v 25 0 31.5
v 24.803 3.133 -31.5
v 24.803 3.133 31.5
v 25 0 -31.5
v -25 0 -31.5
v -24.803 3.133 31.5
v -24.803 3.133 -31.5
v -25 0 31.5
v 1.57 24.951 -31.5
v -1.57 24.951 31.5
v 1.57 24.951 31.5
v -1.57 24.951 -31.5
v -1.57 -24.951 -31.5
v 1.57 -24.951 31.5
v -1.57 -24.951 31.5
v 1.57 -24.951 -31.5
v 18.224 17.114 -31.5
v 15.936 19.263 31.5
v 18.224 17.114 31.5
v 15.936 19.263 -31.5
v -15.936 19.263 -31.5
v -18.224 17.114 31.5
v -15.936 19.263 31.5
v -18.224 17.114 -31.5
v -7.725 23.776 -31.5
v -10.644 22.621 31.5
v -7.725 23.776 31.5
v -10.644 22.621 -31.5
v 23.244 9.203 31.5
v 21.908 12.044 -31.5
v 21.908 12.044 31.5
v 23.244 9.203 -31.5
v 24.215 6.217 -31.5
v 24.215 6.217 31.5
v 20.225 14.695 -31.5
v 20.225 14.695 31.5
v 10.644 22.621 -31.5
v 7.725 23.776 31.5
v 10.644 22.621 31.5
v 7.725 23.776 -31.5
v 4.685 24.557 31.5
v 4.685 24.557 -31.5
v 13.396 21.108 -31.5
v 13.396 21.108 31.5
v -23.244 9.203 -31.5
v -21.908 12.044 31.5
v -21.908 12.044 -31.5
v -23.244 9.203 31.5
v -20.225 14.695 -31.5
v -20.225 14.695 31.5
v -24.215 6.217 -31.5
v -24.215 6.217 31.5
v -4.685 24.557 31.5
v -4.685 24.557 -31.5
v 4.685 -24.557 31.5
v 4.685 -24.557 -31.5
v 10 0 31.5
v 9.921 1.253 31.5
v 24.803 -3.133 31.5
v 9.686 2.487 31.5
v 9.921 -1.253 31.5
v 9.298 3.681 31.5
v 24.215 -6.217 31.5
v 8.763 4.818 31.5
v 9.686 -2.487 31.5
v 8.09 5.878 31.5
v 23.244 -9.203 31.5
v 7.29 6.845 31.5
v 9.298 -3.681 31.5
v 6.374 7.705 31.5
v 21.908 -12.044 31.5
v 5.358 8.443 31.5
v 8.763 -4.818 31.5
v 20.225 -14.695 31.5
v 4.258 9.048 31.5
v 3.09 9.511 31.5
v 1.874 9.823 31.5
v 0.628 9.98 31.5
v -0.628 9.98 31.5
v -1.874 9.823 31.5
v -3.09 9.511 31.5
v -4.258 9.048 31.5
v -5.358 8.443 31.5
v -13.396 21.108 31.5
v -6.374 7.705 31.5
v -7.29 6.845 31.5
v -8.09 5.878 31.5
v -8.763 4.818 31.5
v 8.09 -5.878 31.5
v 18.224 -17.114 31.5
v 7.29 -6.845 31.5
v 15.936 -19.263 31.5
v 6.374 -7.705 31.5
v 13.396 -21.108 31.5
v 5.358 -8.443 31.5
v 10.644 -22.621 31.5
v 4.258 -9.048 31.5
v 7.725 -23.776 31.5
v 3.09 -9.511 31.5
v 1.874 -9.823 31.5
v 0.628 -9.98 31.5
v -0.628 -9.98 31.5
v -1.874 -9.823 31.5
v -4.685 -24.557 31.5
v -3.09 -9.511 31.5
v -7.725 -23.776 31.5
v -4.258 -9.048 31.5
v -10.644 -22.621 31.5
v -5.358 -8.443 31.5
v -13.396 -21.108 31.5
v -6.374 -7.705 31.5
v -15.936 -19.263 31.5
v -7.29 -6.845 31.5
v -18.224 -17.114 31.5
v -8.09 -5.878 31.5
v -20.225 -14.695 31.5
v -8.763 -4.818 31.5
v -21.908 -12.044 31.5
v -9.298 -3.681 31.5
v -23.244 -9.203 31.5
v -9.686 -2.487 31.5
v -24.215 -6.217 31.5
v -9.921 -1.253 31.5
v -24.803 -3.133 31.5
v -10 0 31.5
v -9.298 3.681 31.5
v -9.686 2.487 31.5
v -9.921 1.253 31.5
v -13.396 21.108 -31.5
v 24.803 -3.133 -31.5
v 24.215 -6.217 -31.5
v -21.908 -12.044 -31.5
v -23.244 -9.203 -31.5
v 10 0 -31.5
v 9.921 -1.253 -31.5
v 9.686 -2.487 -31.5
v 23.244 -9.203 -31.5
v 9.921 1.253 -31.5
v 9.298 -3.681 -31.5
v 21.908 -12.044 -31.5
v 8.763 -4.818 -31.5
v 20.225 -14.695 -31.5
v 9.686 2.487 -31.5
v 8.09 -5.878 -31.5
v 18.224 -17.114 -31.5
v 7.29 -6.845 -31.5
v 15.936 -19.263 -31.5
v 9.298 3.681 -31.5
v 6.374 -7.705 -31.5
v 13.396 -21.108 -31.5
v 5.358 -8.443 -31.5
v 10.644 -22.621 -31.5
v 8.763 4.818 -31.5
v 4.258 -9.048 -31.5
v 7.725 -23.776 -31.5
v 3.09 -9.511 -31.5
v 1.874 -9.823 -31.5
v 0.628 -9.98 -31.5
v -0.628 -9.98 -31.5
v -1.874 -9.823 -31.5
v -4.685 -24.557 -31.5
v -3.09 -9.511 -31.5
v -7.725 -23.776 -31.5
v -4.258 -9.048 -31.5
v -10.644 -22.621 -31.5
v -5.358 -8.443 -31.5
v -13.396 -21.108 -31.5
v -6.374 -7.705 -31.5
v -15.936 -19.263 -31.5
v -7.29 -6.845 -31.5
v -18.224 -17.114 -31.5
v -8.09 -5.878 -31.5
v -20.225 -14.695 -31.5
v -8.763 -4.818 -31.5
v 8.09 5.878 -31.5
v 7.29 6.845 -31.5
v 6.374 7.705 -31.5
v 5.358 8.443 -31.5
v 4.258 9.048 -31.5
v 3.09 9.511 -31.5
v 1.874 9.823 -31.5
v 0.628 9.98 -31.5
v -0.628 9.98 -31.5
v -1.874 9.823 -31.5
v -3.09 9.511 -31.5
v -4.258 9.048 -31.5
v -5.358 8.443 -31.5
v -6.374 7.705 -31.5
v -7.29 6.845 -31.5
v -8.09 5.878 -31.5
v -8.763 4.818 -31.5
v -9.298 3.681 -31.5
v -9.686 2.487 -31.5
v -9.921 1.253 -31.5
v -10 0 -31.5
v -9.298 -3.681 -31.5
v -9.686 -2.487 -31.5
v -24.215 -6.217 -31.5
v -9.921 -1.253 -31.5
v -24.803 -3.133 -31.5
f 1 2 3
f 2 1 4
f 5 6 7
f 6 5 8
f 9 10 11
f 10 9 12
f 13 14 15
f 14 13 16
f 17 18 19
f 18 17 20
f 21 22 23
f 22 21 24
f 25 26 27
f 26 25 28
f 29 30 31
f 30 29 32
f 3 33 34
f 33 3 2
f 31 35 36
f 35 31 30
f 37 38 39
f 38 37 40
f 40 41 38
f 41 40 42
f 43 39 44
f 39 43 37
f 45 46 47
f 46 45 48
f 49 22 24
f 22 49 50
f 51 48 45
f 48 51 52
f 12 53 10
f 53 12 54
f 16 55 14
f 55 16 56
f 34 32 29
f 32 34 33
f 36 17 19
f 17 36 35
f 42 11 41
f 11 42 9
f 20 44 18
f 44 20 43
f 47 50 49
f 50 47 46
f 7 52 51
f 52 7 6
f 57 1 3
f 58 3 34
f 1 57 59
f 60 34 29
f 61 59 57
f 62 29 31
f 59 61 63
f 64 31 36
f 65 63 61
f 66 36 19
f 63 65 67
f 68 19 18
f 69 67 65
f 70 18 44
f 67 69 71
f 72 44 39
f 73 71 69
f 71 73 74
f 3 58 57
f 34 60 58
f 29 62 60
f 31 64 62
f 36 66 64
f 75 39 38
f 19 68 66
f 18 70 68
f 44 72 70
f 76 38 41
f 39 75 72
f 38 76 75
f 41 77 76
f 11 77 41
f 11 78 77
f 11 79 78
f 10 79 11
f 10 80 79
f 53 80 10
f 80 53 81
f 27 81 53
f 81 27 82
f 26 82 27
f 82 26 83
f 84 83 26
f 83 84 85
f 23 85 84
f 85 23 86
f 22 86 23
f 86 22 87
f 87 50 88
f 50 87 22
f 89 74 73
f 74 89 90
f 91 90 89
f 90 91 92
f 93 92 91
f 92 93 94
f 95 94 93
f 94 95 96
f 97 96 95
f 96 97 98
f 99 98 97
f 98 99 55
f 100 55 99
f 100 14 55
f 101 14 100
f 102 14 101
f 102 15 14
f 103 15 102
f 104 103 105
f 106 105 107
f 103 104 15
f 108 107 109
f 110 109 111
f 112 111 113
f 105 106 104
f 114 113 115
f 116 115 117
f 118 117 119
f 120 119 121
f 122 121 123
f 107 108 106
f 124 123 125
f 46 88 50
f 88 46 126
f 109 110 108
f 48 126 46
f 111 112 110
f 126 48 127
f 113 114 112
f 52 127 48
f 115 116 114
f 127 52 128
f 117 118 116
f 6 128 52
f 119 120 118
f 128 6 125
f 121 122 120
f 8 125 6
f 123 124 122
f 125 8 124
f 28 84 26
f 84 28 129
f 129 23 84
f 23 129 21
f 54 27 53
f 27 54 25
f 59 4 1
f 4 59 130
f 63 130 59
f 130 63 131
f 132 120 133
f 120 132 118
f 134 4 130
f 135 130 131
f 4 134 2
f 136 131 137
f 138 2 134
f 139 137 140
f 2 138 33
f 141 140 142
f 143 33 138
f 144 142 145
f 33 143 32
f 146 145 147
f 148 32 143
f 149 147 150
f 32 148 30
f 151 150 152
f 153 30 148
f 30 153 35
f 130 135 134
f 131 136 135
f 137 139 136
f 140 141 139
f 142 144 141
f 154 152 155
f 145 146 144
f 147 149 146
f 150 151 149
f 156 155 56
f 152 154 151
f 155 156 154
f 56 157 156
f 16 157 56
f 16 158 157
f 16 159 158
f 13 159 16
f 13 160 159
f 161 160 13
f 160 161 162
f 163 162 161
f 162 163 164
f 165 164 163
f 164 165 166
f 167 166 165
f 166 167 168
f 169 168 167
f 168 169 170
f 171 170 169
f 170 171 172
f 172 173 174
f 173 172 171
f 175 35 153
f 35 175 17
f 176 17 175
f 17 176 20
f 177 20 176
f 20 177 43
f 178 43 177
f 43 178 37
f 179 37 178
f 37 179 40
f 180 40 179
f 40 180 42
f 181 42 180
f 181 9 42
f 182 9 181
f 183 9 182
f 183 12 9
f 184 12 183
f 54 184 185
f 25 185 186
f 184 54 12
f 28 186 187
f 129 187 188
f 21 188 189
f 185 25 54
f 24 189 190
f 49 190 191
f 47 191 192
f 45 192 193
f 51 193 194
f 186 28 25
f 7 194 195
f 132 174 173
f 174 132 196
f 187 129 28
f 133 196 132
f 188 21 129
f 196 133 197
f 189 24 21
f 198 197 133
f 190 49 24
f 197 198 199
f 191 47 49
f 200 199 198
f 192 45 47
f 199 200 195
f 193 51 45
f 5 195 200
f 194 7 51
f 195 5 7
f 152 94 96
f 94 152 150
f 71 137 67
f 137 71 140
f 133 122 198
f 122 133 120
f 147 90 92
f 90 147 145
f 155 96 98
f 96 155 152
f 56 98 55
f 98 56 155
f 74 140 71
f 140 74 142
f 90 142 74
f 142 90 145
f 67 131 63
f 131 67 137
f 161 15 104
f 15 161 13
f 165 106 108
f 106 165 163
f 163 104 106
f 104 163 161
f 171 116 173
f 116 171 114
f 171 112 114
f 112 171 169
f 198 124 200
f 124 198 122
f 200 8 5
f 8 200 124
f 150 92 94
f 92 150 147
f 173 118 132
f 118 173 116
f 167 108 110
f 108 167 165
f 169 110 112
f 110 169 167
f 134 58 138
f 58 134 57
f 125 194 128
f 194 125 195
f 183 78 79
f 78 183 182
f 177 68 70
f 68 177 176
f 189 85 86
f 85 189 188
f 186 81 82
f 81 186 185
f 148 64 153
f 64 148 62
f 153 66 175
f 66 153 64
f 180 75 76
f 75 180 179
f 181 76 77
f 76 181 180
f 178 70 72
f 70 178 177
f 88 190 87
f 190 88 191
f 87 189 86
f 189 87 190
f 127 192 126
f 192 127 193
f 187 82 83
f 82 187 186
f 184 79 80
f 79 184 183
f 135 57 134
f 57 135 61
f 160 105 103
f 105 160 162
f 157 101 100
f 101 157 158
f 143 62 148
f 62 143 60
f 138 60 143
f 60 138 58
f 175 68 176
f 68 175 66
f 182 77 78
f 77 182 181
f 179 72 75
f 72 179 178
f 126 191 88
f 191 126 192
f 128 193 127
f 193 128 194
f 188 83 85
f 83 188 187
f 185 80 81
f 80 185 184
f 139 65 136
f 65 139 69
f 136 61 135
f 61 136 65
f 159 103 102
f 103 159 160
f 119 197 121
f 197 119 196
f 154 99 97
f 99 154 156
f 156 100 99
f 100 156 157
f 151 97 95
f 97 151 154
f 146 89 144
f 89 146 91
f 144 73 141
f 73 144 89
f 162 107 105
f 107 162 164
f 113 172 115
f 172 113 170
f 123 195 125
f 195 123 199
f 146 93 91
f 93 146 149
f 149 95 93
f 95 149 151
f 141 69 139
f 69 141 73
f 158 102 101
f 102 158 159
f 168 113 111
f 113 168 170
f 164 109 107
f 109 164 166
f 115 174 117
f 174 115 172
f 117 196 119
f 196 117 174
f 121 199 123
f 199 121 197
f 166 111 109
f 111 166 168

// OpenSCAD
$fn = 50;


difference() {
	union() {
		translate(v = [0, 0, -31.5000000000]) {
			cylinder(h = 63, r = 25.0000000000);
		}
	}
	union() {
		translate(v = [0, 0, -100.0000000000]) {
			cylinder(h = 200, r = 10);
		}
	}
}
